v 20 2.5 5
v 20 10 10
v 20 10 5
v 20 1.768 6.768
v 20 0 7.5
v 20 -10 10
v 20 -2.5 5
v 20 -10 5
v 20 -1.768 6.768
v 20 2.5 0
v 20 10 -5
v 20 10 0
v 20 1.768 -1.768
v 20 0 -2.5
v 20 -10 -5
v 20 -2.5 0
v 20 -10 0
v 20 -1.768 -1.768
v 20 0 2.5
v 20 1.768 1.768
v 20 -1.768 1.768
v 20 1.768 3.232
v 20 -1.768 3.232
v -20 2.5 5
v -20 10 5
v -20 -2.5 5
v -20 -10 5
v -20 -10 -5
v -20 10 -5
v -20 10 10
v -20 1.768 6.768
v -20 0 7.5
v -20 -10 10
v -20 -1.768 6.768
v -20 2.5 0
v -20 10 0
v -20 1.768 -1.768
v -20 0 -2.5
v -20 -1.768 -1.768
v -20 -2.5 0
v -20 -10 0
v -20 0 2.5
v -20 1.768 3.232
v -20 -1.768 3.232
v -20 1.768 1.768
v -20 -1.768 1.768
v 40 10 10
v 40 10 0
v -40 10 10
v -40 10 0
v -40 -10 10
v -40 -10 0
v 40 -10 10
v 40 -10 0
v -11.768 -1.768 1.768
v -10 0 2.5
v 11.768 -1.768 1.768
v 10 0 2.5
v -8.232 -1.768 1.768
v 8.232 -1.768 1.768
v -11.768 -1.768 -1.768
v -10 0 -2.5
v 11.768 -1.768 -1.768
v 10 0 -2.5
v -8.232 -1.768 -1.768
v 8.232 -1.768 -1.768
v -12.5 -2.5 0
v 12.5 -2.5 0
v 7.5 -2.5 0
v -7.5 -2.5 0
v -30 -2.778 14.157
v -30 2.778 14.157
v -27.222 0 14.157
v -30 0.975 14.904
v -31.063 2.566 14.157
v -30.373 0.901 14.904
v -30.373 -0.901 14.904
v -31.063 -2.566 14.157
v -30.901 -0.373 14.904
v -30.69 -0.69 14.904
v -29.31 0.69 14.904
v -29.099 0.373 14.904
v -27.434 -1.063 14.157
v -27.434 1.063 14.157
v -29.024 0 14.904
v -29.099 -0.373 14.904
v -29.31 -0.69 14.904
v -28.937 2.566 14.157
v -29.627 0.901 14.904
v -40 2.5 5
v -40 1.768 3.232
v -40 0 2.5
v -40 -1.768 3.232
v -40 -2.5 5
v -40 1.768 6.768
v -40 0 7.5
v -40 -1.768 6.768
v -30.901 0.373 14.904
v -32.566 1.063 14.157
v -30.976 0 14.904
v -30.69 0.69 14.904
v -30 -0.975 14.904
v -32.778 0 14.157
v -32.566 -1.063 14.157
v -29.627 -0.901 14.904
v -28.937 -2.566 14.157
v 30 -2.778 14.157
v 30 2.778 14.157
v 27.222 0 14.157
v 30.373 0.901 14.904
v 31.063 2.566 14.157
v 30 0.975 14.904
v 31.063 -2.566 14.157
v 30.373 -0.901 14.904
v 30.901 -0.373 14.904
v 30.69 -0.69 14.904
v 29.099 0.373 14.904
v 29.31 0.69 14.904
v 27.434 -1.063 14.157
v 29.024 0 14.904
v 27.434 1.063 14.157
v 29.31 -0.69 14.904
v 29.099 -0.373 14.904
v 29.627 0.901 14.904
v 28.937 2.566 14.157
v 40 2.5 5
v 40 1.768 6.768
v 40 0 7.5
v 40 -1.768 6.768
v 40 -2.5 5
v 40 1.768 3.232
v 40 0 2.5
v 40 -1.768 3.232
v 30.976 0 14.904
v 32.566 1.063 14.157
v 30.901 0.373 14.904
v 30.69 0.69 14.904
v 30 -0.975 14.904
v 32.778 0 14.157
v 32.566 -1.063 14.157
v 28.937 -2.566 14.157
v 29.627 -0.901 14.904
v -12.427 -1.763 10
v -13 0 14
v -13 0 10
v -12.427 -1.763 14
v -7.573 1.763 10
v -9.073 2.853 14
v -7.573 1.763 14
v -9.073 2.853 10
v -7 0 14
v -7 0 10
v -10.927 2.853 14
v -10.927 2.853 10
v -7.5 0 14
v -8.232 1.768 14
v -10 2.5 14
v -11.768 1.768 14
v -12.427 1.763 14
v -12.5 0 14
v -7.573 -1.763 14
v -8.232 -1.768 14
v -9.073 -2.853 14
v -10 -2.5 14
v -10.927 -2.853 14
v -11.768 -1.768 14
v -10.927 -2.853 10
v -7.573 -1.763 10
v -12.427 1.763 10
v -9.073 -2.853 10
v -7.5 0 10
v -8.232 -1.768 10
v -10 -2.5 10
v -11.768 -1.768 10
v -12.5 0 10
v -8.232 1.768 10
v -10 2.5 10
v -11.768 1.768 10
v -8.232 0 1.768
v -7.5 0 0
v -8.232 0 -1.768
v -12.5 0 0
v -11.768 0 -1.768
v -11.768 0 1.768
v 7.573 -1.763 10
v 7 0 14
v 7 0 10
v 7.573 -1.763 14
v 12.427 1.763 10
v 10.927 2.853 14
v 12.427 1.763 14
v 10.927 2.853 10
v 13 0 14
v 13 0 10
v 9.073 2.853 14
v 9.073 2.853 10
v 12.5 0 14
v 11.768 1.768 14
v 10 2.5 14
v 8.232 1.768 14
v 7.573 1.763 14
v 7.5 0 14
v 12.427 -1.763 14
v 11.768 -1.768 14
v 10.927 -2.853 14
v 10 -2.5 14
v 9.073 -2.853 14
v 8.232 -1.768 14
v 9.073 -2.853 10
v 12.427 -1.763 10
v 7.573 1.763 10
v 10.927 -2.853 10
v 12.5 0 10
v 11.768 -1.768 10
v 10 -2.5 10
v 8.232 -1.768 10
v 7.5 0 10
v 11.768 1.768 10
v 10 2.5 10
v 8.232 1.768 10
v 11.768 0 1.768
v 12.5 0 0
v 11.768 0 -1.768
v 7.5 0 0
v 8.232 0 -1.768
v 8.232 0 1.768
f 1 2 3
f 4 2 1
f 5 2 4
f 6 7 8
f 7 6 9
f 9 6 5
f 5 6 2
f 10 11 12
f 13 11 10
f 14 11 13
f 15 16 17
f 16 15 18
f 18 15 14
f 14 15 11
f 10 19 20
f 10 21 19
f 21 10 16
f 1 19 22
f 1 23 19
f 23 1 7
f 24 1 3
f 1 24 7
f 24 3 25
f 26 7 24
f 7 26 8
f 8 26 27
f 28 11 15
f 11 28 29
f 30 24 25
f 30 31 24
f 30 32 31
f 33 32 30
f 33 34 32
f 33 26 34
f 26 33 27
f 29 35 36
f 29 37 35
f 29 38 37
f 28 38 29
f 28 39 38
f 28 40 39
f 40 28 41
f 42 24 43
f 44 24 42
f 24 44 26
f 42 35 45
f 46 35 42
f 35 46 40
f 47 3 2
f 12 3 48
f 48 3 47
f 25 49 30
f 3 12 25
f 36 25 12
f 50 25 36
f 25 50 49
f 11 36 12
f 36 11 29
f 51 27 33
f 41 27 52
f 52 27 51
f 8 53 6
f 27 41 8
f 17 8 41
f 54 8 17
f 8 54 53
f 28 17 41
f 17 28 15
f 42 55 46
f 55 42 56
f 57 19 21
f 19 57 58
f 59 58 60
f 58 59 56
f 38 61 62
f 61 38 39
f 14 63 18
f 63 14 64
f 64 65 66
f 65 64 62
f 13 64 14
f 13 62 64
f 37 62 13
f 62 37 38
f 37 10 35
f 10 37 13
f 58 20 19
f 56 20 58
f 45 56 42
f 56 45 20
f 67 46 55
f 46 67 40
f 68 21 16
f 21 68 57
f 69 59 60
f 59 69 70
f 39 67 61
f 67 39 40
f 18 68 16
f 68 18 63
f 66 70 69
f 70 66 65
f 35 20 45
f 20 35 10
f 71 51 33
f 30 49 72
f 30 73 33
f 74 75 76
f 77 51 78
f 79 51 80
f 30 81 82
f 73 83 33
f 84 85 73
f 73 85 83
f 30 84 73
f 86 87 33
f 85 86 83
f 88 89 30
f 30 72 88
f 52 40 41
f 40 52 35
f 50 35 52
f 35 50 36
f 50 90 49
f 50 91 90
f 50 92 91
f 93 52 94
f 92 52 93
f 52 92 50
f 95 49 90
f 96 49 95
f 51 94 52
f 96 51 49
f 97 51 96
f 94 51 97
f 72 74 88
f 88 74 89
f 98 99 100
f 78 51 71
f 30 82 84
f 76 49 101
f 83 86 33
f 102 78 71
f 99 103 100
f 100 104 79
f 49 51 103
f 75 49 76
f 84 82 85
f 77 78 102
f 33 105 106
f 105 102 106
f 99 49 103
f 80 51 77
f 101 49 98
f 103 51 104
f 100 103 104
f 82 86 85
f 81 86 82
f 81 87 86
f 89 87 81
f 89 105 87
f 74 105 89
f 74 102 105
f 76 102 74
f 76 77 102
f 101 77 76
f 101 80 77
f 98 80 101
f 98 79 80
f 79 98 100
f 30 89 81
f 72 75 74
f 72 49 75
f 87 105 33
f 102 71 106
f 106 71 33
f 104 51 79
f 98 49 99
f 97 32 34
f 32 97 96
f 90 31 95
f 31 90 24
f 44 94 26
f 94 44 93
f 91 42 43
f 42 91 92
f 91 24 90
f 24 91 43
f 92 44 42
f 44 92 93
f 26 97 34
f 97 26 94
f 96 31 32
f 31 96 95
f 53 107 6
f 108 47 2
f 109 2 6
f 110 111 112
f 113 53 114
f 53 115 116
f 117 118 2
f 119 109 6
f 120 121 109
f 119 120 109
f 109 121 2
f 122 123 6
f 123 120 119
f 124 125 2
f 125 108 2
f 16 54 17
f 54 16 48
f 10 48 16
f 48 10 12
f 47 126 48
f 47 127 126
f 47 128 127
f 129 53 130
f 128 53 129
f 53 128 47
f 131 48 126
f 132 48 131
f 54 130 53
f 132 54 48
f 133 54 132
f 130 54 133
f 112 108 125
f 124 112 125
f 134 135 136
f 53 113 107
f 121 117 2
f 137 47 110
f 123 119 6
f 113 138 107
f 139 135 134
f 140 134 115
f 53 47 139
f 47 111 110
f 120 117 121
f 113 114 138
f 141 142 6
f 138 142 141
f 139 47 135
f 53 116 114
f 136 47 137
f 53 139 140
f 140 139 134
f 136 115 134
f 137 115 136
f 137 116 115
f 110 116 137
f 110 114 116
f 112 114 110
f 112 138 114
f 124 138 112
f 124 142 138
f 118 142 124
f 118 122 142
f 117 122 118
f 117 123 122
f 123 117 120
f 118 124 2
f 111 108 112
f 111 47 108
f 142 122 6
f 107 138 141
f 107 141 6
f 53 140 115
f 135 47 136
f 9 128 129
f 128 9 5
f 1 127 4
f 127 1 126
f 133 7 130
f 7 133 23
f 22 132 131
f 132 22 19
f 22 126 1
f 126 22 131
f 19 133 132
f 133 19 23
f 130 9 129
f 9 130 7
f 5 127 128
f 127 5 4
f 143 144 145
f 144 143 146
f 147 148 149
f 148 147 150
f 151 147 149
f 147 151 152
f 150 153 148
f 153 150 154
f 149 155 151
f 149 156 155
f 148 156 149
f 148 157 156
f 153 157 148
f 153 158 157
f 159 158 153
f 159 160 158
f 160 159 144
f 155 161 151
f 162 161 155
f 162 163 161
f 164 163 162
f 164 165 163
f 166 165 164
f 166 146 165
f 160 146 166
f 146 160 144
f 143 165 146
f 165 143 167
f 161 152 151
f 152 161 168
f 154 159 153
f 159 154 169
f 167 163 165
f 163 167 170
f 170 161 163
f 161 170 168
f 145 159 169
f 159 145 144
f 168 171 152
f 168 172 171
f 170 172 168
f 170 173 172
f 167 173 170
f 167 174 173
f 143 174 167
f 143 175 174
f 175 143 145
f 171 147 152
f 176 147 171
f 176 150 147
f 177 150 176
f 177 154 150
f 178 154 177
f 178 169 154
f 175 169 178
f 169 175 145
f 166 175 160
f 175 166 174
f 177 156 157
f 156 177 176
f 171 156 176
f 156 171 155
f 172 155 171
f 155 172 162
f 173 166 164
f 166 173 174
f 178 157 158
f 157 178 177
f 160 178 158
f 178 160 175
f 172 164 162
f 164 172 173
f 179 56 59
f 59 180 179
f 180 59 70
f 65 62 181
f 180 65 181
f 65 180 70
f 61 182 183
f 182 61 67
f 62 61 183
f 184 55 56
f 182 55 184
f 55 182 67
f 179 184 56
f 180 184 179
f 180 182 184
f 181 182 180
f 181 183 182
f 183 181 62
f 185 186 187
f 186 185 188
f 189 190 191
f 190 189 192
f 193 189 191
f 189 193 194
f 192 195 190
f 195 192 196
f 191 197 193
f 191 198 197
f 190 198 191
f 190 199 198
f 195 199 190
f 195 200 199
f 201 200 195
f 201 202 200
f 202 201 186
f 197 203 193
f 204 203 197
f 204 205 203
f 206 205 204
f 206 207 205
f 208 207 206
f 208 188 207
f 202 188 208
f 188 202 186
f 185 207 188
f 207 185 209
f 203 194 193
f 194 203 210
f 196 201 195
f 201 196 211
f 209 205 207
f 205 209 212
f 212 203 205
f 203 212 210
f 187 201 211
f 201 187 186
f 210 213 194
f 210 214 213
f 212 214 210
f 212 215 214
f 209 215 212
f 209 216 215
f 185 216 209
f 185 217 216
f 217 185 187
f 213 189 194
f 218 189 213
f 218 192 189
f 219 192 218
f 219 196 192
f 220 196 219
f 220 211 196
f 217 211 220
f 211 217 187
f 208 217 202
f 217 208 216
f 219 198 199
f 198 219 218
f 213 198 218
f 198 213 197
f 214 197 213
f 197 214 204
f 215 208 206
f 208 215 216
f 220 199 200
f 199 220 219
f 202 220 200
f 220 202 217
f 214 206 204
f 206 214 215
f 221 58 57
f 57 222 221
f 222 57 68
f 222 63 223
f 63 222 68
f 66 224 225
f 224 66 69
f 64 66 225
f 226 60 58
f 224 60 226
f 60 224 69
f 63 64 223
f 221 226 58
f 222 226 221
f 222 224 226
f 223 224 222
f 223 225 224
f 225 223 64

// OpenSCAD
// Parameters
central_block_length = 40;
central_block_width = 20;
central_block_height = 10;
hole_diameter = 5;
hole_offset = 10;

side_block_length = 20;
side_block_width = 20;
side_block_height = 10;
side_block_curve_radius = 5; // Adjusted curvature to match original model

bolt_diameter = 5;
bolt_length = 10; // Shortened bolt length to match original model

nut_diameter = 6; // Adjusted nut size to match original model
nut_thickness = 4;

// Central Block
module central_block() {
    difference() {
        cube([central_block_length, central_block_width, central_block_height], center = true);
        translate([-central_block_length/2 + hole_offset, 0, 0])
            rotate([0, 90, 0])
            cylinder(r = hole_diameter/2, h = central_block_width + 2, center = true);
        translate([central_block_length/2 - hole_offset, 0, 0])
            rotate([0, 90, 0])
            cylinder(r = hole_diameter/2, h = central_block_width + 2, center = true);
    }
}

// Side Block
module side_block() {
    difference() {
        hull() {
            translate([-side_block_length/2, -side_block_width/2, 0])
                cube([side_block_length, side_block_width, side_block_height]);
            translate([0, 0, side_block_height])
                sphere(r = side_block_curve_radius);
        }
        translate([-side_block_length/2 + hole_offset, 0, side_block_height/2])
            rotate([0, 90, 0])
            cylinder(r = hole_diameter/2, h = side_block_width + 2, center = true);
    }
}

// Bolt
module bolt() {
    cylinder(r = bolt_diameter/2, h = bolt_length, center = false);
}

// Nut
module nut() {
    difference() {
        cylinder(r = nut_diameter/2, h = nut_thickness, center = false);
        translate([0, 0, nut_thickness/2])
            cylinder(r = bolt_diameter/2, h = nut_thickness + 2, center = true);
    }
}

// Assembly
module assembly() {
    // Central Block
    central_block();

    // Side Blocks
    translate([-central_block_length/2 - side_block_length/2, 0, 0])
        side_block();
    translate([central_block_length/2 + side_block_length/2, 0, 0])
        mirror([1, 0, 0])
            side_block();

    // Bolts and Nuts
    for (i = [-1, 1]) {
        translate([i * (central_block_length/2 - hole_offset), 0, 0]) {
            rotate([90, 0, 0])
                bolt();
            translate([0, 0, bolt_length])
                nut();
        }
    }
}

// Render the assembly
assembly();
